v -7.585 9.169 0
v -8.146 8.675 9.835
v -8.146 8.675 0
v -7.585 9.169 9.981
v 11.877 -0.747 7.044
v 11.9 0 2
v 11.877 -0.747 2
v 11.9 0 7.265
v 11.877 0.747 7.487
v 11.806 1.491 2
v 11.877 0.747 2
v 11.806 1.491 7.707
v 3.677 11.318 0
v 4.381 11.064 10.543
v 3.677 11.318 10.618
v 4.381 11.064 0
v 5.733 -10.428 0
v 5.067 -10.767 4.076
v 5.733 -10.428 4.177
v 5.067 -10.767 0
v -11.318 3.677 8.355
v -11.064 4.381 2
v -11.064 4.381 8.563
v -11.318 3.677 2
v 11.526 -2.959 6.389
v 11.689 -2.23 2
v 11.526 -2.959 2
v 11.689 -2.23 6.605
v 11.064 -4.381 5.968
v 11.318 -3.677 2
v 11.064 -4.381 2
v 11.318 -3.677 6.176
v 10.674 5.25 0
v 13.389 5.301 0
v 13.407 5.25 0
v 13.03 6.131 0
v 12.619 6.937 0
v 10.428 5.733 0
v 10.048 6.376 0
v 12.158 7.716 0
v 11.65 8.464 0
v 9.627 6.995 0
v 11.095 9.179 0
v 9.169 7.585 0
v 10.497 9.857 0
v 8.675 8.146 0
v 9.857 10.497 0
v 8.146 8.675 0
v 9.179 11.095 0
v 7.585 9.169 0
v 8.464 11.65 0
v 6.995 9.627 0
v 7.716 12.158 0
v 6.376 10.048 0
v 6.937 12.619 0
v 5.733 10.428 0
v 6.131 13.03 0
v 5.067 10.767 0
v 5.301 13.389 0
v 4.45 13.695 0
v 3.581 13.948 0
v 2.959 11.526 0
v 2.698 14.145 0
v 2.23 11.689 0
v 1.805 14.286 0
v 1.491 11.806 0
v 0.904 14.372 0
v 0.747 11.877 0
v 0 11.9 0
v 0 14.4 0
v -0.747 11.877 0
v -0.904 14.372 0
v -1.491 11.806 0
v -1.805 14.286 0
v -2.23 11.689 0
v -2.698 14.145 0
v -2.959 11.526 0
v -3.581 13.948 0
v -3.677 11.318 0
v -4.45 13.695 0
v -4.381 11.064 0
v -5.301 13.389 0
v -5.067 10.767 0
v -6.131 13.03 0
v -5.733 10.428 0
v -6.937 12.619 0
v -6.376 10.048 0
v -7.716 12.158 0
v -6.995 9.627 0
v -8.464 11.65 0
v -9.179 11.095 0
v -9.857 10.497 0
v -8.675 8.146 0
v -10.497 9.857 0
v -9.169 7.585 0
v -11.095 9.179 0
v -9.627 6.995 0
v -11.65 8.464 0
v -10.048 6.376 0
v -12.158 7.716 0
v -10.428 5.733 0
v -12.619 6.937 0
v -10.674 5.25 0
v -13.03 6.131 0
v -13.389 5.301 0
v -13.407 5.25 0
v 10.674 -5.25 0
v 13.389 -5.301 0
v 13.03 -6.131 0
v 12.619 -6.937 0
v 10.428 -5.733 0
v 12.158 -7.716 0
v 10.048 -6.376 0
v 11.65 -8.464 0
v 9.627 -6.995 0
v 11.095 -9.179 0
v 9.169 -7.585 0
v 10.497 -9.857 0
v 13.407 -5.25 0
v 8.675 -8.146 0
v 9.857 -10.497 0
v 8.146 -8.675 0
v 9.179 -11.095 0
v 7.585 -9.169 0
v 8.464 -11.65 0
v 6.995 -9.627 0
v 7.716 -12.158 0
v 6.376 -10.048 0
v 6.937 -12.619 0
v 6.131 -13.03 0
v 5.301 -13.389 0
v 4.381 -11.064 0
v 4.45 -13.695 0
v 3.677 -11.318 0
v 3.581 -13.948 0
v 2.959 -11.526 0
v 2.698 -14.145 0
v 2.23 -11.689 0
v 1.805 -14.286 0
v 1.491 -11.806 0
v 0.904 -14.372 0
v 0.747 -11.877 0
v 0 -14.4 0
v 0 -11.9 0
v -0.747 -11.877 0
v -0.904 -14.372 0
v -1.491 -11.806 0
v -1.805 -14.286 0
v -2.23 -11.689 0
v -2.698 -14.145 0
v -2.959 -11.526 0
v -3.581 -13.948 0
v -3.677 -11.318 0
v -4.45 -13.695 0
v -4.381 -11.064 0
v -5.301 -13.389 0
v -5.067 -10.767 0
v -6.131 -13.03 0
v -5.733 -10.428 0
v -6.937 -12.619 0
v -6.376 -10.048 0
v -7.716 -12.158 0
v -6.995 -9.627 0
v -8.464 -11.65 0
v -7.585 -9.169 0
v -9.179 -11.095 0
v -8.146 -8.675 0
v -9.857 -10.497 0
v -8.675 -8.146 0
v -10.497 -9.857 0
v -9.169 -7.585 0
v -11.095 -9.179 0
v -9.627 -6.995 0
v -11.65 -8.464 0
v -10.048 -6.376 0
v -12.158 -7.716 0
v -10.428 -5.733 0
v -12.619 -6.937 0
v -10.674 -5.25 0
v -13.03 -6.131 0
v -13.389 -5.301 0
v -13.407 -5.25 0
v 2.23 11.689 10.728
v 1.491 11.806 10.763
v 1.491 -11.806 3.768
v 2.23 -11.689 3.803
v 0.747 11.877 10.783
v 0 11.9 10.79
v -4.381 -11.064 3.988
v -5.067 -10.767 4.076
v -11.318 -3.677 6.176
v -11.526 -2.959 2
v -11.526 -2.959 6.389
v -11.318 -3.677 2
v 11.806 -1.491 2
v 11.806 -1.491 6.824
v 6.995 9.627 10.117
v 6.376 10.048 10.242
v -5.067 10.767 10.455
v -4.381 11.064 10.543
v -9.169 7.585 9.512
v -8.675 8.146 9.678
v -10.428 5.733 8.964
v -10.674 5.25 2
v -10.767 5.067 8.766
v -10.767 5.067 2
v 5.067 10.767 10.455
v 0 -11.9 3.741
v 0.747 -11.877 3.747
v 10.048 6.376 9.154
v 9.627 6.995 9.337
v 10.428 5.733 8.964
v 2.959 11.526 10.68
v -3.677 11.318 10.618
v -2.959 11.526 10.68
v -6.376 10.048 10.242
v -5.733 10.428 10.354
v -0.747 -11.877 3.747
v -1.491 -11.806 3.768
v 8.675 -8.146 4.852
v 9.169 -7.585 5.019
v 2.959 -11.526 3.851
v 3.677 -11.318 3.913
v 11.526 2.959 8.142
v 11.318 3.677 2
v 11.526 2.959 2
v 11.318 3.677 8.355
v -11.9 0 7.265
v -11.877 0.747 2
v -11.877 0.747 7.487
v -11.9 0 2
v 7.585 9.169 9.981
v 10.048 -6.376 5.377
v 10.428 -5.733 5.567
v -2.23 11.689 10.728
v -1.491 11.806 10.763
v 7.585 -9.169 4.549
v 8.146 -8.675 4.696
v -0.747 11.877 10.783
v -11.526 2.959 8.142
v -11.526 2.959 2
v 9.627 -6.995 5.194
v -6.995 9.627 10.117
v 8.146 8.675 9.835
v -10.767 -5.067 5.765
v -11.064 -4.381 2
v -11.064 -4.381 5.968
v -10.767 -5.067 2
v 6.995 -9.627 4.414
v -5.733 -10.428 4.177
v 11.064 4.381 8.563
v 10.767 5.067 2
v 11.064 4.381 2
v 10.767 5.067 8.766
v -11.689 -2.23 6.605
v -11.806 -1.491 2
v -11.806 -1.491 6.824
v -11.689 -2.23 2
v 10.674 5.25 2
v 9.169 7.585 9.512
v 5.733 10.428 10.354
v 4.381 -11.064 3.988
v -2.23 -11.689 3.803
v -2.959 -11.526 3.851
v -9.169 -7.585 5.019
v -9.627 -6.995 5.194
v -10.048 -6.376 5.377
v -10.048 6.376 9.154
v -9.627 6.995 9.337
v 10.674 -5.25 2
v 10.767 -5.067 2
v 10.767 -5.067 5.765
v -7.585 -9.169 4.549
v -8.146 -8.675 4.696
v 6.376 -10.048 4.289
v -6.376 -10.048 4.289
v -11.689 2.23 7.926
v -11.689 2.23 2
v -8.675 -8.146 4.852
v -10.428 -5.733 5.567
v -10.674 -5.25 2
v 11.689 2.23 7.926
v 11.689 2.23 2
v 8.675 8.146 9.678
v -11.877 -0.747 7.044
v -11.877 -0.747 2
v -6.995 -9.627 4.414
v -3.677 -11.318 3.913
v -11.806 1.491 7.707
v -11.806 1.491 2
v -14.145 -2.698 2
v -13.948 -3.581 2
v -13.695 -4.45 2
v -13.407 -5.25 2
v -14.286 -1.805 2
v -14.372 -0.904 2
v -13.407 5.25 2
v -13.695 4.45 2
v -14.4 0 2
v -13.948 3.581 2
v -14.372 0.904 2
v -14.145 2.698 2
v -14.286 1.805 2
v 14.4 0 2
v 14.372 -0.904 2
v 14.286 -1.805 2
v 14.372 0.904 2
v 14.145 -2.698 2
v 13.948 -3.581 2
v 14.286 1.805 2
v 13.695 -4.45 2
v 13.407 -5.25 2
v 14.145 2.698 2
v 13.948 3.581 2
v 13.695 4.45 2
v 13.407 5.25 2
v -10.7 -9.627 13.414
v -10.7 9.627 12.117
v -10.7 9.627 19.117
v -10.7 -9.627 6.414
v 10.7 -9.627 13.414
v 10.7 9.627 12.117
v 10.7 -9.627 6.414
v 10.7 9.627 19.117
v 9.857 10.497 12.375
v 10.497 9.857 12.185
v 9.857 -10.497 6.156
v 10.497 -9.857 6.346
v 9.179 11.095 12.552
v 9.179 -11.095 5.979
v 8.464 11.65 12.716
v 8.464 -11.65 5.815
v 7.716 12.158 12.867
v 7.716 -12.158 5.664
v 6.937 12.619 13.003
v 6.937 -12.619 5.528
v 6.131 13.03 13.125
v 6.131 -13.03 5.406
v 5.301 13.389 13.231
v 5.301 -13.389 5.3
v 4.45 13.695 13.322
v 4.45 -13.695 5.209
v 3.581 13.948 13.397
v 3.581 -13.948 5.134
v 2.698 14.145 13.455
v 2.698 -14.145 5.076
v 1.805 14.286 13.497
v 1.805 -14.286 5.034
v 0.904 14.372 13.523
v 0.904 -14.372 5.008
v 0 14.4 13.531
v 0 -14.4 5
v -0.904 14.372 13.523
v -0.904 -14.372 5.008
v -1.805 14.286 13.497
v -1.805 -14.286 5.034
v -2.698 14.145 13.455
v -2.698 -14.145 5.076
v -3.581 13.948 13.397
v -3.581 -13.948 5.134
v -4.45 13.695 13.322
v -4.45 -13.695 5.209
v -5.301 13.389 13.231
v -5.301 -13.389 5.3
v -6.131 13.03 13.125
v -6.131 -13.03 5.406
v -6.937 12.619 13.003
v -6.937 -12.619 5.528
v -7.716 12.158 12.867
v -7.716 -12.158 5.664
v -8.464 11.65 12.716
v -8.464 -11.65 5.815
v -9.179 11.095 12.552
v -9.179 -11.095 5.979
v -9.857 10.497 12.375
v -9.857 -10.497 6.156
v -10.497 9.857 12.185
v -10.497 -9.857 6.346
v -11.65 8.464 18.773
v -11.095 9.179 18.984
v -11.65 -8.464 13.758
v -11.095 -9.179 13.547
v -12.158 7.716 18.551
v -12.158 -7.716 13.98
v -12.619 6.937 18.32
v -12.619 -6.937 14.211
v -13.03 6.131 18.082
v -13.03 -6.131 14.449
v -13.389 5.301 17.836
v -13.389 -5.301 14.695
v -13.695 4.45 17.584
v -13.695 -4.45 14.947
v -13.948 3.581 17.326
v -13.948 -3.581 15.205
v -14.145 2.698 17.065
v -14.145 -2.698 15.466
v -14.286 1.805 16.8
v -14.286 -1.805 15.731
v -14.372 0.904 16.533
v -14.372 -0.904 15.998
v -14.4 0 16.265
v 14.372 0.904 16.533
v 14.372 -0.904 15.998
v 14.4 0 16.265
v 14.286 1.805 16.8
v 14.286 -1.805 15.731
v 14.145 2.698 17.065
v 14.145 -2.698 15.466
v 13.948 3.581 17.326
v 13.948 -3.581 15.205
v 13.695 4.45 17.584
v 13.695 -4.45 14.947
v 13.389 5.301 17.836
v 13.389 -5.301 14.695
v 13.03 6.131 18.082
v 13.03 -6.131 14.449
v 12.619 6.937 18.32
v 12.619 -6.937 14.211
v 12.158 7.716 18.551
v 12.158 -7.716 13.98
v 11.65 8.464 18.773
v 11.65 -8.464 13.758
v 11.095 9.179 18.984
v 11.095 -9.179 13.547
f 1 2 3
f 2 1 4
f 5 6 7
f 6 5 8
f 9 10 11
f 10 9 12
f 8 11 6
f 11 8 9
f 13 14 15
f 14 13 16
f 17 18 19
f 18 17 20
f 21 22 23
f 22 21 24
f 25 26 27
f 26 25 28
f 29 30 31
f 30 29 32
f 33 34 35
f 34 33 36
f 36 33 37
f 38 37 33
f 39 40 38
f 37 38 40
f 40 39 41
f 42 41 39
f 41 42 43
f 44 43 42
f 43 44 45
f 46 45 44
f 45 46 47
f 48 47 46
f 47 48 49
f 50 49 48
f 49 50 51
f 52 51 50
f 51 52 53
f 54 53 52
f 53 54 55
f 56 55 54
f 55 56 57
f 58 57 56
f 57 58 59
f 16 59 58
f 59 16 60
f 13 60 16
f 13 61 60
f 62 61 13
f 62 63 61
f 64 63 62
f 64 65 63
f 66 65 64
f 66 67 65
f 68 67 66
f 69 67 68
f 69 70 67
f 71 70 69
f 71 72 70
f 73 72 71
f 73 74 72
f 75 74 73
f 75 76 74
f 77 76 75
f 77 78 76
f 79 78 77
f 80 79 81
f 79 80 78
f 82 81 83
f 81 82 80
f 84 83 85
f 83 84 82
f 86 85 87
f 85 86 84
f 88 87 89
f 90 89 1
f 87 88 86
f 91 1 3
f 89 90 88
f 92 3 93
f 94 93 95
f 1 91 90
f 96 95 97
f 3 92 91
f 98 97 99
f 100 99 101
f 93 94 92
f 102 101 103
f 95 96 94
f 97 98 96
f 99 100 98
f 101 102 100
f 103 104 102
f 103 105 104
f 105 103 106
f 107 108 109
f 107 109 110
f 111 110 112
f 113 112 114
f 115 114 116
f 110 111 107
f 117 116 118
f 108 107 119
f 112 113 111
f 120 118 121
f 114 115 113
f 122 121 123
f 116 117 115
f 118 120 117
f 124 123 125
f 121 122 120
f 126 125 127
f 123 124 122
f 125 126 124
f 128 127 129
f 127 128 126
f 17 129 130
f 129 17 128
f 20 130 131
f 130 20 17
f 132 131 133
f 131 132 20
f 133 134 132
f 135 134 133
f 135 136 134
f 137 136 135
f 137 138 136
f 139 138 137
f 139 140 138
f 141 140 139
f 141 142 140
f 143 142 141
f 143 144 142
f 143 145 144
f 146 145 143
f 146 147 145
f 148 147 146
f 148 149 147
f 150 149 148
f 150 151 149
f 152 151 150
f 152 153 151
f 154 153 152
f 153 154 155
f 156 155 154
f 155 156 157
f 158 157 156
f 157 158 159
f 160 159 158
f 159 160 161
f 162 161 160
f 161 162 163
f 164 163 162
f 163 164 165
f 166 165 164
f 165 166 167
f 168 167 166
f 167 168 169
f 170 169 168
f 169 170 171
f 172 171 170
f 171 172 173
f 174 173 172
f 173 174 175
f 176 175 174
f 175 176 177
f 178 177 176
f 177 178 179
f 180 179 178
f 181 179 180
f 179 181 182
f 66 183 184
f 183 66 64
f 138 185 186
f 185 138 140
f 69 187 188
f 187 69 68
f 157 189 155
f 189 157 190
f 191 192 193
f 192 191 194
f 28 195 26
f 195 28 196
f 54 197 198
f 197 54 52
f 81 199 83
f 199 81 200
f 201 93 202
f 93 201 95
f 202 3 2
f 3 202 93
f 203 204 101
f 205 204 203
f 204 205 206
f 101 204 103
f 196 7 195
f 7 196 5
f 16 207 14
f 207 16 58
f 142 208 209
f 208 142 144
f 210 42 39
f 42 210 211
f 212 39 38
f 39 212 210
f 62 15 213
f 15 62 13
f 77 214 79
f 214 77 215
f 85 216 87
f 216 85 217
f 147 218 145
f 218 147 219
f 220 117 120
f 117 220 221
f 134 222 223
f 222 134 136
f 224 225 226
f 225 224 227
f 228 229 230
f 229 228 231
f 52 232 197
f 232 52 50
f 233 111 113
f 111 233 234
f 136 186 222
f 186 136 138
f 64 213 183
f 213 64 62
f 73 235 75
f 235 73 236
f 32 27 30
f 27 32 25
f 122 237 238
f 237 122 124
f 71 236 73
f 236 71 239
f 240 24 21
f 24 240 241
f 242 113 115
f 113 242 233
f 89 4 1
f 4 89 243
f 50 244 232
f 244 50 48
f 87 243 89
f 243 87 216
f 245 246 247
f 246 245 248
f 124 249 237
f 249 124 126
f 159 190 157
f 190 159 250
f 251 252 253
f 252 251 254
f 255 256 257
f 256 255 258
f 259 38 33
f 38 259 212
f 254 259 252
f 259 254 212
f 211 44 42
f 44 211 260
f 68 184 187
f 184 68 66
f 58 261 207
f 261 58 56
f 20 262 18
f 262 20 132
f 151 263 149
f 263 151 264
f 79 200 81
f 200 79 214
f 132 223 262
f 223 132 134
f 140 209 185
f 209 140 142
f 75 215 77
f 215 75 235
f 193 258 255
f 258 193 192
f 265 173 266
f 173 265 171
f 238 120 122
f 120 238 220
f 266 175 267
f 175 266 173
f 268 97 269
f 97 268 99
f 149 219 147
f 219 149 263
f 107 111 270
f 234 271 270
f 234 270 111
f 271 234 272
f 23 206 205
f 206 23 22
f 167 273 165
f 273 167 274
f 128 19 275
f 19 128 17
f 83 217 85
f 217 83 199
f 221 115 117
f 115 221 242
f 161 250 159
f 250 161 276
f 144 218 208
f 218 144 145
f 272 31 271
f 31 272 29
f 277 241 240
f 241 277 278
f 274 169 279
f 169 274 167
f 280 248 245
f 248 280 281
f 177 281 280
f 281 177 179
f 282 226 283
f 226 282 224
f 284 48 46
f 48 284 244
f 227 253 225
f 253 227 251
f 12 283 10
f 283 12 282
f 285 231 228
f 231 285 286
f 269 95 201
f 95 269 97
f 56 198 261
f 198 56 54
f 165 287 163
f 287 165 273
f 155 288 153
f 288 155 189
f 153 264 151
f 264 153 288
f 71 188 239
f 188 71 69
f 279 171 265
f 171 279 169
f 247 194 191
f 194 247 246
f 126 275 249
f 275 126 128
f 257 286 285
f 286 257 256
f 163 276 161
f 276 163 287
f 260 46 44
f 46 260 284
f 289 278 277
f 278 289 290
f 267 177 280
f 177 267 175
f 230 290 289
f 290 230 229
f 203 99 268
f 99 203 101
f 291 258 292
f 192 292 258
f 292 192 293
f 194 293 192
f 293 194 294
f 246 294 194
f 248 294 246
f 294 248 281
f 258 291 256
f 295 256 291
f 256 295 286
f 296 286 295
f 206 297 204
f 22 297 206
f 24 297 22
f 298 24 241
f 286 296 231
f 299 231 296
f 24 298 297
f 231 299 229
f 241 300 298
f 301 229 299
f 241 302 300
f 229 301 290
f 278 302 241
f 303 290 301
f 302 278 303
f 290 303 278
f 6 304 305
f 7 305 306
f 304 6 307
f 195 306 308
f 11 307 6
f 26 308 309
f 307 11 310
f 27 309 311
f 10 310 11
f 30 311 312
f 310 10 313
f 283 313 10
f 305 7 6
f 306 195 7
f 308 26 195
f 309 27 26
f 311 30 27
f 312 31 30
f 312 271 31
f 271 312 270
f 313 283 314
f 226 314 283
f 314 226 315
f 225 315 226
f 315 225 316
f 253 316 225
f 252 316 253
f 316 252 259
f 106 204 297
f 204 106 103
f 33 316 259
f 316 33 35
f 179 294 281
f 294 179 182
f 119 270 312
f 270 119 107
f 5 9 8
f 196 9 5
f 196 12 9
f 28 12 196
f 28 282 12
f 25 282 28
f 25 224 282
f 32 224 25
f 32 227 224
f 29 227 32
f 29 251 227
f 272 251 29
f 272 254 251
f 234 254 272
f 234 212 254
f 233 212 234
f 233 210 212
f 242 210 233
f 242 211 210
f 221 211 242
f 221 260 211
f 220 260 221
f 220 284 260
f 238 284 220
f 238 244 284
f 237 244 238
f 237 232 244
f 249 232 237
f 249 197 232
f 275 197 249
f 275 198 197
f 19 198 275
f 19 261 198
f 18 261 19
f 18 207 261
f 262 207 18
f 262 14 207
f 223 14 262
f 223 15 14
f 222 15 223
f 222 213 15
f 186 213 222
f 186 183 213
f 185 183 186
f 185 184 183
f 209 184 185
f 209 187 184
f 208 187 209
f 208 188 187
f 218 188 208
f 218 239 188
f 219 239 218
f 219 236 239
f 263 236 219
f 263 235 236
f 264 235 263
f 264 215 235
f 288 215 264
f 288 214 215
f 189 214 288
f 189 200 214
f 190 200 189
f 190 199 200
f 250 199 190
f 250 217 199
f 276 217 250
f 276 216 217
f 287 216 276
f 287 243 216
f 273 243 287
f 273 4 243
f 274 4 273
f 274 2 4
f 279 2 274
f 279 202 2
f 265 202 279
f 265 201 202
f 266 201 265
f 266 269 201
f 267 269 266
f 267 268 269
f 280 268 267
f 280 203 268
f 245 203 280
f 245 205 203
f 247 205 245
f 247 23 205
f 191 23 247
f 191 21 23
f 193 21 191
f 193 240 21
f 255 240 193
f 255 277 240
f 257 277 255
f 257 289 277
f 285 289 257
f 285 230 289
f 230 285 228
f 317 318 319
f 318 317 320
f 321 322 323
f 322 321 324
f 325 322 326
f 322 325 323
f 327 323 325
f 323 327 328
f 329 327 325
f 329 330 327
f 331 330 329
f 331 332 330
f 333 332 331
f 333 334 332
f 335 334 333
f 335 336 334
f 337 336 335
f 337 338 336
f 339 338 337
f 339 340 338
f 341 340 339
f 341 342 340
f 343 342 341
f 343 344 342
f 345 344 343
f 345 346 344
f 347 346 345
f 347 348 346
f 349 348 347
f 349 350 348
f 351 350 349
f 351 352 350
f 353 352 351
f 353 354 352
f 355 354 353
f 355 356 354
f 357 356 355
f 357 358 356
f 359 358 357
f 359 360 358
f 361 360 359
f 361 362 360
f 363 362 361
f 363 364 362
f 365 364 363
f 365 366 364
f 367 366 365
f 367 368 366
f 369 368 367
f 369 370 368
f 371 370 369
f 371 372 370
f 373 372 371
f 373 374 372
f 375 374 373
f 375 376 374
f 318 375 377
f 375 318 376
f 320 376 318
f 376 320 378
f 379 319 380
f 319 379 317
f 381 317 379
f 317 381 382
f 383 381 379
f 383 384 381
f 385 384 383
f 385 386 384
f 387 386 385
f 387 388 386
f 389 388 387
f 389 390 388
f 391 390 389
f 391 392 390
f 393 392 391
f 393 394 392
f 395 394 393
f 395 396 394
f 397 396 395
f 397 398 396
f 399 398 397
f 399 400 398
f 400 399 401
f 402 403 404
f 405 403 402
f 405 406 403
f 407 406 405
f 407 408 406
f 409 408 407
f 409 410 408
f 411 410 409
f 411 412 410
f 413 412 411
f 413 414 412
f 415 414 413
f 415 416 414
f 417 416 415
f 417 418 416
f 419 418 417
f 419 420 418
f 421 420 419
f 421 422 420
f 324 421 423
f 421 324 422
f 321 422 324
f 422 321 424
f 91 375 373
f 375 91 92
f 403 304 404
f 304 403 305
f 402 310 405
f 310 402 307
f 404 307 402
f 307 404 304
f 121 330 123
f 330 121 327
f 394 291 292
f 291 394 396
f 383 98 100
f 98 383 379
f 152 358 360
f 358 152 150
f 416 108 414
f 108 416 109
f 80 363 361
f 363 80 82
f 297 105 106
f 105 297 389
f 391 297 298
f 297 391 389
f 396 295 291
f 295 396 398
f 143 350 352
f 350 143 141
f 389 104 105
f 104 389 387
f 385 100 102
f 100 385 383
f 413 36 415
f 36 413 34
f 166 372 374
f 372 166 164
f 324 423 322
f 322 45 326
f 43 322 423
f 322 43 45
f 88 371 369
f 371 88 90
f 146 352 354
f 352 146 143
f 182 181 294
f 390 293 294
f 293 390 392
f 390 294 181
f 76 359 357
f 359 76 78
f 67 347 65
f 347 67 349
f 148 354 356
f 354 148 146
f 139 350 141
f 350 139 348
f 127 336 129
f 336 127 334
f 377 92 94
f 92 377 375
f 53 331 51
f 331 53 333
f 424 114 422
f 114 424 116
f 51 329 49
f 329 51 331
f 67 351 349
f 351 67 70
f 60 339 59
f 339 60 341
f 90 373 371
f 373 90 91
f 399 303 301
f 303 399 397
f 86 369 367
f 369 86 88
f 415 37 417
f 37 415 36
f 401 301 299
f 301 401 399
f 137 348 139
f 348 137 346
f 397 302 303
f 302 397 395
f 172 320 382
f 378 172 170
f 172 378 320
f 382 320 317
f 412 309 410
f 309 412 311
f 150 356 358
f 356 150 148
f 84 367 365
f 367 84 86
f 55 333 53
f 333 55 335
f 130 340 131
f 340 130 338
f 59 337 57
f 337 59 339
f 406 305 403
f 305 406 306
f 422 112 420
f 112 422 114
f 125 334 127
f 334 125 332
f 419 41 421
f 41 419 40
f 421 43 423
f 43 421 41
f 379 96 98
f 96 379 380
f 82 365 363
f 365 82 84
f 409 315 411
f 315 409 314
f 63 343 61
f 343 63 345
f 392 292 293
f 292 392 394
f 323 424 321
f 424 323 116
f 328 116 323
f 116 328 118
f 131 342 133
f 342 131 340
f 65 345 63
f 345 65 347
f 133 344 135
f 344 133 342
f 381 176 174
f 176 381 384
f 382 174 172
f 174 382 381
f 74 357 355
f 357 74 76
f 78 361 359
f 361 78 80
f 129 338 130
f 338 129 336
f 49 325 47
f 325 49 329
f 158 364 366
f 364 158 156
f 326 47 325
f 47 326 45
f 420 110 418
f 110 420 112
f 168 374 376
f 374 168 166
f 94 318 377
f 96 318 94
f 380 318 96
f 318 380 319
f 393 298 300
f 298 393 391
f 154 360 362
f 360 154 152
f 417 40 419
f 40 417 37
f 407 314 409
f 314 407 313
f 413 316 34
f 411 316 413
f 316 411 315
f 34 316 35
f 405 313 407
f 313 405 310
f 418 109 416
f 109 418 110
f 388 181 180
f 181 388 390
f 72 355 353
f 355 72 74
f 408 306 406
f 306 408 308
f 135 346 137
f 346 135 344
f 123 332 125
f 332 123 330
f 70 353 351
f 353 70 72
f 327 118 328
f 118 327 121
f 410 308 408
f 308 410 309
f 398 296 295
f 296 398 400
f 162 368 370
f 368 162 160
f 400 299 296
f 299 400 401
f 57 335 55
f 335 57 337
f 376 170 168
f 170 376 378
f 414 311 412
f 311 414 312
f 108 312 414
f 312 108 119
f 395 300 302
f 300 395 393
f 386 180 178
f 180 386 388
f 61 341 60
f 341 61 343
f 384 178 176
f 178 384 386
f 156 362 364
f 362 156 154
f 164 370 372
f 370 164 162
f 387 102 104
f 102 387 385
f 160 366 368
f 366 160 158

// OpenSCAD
// CONFIGURATION:

// angle of the seat tube, this one is for sl7 size 56
seat_tube_angle = 73.5;
// distance between the sides, should be slightly bigger than the real seat tube width
seat_tube_width = 21.4;

// outer diameter to fit inside of garmin mount
outerD = 28.8;
// inner diameter to fit inside of garmin mount
innerD = 23.8;
// dimensions of the holes to fit inside of garmin mount
hole_height = 2;
hole_width = 10.5;

// height of the sides
side_height = 7;
// thickness of the wall that attaches to the seat tube
contact_thickness = 2;

// CONSTANTS:
big = 100;
inf = 1000;

rotation_angle = 90 - seat_tube_angle;
bottom_height = hole_height+1;

difference() {
    // the base shape we cut out of
    cylinder(d = outerD, h = big, $fn = 100);
    
    // the bottom cut
    difference() {
        union() {
            cylinder(d = innerD, h = big, $fn = 100);
            centeredCube([outerD, hole_width, hole_height]);
        }
        translate([-outerD/2, -outerD/2, bottom_height]) {
            rotate([rotation_angle, 0, 0]) {
                cube(inf);
            }
        }
    }
    
    // the top cut
    union() {
        translate([0, 0, bottom_height+contact_thickness]) {
            translate([-seat_tube_width/2, -outerD/2, 0]) {
                rotate([rotation_angle, 0, 0]) {
                    cube([seat_tube_width, inf, inf]);
                }
            }    
        }
        translate([-inf/2, -outerD/2, bottom_height+contact_thickness+side_height]) {
            rotate([rotation_angle, 0, 0]) {
                cube(inf);    
            }
        }
    }
}


module centeredCube(size) {
    translate([-size.x/2, -size.y/2, 0]) {
        cube(size);
    }
}
